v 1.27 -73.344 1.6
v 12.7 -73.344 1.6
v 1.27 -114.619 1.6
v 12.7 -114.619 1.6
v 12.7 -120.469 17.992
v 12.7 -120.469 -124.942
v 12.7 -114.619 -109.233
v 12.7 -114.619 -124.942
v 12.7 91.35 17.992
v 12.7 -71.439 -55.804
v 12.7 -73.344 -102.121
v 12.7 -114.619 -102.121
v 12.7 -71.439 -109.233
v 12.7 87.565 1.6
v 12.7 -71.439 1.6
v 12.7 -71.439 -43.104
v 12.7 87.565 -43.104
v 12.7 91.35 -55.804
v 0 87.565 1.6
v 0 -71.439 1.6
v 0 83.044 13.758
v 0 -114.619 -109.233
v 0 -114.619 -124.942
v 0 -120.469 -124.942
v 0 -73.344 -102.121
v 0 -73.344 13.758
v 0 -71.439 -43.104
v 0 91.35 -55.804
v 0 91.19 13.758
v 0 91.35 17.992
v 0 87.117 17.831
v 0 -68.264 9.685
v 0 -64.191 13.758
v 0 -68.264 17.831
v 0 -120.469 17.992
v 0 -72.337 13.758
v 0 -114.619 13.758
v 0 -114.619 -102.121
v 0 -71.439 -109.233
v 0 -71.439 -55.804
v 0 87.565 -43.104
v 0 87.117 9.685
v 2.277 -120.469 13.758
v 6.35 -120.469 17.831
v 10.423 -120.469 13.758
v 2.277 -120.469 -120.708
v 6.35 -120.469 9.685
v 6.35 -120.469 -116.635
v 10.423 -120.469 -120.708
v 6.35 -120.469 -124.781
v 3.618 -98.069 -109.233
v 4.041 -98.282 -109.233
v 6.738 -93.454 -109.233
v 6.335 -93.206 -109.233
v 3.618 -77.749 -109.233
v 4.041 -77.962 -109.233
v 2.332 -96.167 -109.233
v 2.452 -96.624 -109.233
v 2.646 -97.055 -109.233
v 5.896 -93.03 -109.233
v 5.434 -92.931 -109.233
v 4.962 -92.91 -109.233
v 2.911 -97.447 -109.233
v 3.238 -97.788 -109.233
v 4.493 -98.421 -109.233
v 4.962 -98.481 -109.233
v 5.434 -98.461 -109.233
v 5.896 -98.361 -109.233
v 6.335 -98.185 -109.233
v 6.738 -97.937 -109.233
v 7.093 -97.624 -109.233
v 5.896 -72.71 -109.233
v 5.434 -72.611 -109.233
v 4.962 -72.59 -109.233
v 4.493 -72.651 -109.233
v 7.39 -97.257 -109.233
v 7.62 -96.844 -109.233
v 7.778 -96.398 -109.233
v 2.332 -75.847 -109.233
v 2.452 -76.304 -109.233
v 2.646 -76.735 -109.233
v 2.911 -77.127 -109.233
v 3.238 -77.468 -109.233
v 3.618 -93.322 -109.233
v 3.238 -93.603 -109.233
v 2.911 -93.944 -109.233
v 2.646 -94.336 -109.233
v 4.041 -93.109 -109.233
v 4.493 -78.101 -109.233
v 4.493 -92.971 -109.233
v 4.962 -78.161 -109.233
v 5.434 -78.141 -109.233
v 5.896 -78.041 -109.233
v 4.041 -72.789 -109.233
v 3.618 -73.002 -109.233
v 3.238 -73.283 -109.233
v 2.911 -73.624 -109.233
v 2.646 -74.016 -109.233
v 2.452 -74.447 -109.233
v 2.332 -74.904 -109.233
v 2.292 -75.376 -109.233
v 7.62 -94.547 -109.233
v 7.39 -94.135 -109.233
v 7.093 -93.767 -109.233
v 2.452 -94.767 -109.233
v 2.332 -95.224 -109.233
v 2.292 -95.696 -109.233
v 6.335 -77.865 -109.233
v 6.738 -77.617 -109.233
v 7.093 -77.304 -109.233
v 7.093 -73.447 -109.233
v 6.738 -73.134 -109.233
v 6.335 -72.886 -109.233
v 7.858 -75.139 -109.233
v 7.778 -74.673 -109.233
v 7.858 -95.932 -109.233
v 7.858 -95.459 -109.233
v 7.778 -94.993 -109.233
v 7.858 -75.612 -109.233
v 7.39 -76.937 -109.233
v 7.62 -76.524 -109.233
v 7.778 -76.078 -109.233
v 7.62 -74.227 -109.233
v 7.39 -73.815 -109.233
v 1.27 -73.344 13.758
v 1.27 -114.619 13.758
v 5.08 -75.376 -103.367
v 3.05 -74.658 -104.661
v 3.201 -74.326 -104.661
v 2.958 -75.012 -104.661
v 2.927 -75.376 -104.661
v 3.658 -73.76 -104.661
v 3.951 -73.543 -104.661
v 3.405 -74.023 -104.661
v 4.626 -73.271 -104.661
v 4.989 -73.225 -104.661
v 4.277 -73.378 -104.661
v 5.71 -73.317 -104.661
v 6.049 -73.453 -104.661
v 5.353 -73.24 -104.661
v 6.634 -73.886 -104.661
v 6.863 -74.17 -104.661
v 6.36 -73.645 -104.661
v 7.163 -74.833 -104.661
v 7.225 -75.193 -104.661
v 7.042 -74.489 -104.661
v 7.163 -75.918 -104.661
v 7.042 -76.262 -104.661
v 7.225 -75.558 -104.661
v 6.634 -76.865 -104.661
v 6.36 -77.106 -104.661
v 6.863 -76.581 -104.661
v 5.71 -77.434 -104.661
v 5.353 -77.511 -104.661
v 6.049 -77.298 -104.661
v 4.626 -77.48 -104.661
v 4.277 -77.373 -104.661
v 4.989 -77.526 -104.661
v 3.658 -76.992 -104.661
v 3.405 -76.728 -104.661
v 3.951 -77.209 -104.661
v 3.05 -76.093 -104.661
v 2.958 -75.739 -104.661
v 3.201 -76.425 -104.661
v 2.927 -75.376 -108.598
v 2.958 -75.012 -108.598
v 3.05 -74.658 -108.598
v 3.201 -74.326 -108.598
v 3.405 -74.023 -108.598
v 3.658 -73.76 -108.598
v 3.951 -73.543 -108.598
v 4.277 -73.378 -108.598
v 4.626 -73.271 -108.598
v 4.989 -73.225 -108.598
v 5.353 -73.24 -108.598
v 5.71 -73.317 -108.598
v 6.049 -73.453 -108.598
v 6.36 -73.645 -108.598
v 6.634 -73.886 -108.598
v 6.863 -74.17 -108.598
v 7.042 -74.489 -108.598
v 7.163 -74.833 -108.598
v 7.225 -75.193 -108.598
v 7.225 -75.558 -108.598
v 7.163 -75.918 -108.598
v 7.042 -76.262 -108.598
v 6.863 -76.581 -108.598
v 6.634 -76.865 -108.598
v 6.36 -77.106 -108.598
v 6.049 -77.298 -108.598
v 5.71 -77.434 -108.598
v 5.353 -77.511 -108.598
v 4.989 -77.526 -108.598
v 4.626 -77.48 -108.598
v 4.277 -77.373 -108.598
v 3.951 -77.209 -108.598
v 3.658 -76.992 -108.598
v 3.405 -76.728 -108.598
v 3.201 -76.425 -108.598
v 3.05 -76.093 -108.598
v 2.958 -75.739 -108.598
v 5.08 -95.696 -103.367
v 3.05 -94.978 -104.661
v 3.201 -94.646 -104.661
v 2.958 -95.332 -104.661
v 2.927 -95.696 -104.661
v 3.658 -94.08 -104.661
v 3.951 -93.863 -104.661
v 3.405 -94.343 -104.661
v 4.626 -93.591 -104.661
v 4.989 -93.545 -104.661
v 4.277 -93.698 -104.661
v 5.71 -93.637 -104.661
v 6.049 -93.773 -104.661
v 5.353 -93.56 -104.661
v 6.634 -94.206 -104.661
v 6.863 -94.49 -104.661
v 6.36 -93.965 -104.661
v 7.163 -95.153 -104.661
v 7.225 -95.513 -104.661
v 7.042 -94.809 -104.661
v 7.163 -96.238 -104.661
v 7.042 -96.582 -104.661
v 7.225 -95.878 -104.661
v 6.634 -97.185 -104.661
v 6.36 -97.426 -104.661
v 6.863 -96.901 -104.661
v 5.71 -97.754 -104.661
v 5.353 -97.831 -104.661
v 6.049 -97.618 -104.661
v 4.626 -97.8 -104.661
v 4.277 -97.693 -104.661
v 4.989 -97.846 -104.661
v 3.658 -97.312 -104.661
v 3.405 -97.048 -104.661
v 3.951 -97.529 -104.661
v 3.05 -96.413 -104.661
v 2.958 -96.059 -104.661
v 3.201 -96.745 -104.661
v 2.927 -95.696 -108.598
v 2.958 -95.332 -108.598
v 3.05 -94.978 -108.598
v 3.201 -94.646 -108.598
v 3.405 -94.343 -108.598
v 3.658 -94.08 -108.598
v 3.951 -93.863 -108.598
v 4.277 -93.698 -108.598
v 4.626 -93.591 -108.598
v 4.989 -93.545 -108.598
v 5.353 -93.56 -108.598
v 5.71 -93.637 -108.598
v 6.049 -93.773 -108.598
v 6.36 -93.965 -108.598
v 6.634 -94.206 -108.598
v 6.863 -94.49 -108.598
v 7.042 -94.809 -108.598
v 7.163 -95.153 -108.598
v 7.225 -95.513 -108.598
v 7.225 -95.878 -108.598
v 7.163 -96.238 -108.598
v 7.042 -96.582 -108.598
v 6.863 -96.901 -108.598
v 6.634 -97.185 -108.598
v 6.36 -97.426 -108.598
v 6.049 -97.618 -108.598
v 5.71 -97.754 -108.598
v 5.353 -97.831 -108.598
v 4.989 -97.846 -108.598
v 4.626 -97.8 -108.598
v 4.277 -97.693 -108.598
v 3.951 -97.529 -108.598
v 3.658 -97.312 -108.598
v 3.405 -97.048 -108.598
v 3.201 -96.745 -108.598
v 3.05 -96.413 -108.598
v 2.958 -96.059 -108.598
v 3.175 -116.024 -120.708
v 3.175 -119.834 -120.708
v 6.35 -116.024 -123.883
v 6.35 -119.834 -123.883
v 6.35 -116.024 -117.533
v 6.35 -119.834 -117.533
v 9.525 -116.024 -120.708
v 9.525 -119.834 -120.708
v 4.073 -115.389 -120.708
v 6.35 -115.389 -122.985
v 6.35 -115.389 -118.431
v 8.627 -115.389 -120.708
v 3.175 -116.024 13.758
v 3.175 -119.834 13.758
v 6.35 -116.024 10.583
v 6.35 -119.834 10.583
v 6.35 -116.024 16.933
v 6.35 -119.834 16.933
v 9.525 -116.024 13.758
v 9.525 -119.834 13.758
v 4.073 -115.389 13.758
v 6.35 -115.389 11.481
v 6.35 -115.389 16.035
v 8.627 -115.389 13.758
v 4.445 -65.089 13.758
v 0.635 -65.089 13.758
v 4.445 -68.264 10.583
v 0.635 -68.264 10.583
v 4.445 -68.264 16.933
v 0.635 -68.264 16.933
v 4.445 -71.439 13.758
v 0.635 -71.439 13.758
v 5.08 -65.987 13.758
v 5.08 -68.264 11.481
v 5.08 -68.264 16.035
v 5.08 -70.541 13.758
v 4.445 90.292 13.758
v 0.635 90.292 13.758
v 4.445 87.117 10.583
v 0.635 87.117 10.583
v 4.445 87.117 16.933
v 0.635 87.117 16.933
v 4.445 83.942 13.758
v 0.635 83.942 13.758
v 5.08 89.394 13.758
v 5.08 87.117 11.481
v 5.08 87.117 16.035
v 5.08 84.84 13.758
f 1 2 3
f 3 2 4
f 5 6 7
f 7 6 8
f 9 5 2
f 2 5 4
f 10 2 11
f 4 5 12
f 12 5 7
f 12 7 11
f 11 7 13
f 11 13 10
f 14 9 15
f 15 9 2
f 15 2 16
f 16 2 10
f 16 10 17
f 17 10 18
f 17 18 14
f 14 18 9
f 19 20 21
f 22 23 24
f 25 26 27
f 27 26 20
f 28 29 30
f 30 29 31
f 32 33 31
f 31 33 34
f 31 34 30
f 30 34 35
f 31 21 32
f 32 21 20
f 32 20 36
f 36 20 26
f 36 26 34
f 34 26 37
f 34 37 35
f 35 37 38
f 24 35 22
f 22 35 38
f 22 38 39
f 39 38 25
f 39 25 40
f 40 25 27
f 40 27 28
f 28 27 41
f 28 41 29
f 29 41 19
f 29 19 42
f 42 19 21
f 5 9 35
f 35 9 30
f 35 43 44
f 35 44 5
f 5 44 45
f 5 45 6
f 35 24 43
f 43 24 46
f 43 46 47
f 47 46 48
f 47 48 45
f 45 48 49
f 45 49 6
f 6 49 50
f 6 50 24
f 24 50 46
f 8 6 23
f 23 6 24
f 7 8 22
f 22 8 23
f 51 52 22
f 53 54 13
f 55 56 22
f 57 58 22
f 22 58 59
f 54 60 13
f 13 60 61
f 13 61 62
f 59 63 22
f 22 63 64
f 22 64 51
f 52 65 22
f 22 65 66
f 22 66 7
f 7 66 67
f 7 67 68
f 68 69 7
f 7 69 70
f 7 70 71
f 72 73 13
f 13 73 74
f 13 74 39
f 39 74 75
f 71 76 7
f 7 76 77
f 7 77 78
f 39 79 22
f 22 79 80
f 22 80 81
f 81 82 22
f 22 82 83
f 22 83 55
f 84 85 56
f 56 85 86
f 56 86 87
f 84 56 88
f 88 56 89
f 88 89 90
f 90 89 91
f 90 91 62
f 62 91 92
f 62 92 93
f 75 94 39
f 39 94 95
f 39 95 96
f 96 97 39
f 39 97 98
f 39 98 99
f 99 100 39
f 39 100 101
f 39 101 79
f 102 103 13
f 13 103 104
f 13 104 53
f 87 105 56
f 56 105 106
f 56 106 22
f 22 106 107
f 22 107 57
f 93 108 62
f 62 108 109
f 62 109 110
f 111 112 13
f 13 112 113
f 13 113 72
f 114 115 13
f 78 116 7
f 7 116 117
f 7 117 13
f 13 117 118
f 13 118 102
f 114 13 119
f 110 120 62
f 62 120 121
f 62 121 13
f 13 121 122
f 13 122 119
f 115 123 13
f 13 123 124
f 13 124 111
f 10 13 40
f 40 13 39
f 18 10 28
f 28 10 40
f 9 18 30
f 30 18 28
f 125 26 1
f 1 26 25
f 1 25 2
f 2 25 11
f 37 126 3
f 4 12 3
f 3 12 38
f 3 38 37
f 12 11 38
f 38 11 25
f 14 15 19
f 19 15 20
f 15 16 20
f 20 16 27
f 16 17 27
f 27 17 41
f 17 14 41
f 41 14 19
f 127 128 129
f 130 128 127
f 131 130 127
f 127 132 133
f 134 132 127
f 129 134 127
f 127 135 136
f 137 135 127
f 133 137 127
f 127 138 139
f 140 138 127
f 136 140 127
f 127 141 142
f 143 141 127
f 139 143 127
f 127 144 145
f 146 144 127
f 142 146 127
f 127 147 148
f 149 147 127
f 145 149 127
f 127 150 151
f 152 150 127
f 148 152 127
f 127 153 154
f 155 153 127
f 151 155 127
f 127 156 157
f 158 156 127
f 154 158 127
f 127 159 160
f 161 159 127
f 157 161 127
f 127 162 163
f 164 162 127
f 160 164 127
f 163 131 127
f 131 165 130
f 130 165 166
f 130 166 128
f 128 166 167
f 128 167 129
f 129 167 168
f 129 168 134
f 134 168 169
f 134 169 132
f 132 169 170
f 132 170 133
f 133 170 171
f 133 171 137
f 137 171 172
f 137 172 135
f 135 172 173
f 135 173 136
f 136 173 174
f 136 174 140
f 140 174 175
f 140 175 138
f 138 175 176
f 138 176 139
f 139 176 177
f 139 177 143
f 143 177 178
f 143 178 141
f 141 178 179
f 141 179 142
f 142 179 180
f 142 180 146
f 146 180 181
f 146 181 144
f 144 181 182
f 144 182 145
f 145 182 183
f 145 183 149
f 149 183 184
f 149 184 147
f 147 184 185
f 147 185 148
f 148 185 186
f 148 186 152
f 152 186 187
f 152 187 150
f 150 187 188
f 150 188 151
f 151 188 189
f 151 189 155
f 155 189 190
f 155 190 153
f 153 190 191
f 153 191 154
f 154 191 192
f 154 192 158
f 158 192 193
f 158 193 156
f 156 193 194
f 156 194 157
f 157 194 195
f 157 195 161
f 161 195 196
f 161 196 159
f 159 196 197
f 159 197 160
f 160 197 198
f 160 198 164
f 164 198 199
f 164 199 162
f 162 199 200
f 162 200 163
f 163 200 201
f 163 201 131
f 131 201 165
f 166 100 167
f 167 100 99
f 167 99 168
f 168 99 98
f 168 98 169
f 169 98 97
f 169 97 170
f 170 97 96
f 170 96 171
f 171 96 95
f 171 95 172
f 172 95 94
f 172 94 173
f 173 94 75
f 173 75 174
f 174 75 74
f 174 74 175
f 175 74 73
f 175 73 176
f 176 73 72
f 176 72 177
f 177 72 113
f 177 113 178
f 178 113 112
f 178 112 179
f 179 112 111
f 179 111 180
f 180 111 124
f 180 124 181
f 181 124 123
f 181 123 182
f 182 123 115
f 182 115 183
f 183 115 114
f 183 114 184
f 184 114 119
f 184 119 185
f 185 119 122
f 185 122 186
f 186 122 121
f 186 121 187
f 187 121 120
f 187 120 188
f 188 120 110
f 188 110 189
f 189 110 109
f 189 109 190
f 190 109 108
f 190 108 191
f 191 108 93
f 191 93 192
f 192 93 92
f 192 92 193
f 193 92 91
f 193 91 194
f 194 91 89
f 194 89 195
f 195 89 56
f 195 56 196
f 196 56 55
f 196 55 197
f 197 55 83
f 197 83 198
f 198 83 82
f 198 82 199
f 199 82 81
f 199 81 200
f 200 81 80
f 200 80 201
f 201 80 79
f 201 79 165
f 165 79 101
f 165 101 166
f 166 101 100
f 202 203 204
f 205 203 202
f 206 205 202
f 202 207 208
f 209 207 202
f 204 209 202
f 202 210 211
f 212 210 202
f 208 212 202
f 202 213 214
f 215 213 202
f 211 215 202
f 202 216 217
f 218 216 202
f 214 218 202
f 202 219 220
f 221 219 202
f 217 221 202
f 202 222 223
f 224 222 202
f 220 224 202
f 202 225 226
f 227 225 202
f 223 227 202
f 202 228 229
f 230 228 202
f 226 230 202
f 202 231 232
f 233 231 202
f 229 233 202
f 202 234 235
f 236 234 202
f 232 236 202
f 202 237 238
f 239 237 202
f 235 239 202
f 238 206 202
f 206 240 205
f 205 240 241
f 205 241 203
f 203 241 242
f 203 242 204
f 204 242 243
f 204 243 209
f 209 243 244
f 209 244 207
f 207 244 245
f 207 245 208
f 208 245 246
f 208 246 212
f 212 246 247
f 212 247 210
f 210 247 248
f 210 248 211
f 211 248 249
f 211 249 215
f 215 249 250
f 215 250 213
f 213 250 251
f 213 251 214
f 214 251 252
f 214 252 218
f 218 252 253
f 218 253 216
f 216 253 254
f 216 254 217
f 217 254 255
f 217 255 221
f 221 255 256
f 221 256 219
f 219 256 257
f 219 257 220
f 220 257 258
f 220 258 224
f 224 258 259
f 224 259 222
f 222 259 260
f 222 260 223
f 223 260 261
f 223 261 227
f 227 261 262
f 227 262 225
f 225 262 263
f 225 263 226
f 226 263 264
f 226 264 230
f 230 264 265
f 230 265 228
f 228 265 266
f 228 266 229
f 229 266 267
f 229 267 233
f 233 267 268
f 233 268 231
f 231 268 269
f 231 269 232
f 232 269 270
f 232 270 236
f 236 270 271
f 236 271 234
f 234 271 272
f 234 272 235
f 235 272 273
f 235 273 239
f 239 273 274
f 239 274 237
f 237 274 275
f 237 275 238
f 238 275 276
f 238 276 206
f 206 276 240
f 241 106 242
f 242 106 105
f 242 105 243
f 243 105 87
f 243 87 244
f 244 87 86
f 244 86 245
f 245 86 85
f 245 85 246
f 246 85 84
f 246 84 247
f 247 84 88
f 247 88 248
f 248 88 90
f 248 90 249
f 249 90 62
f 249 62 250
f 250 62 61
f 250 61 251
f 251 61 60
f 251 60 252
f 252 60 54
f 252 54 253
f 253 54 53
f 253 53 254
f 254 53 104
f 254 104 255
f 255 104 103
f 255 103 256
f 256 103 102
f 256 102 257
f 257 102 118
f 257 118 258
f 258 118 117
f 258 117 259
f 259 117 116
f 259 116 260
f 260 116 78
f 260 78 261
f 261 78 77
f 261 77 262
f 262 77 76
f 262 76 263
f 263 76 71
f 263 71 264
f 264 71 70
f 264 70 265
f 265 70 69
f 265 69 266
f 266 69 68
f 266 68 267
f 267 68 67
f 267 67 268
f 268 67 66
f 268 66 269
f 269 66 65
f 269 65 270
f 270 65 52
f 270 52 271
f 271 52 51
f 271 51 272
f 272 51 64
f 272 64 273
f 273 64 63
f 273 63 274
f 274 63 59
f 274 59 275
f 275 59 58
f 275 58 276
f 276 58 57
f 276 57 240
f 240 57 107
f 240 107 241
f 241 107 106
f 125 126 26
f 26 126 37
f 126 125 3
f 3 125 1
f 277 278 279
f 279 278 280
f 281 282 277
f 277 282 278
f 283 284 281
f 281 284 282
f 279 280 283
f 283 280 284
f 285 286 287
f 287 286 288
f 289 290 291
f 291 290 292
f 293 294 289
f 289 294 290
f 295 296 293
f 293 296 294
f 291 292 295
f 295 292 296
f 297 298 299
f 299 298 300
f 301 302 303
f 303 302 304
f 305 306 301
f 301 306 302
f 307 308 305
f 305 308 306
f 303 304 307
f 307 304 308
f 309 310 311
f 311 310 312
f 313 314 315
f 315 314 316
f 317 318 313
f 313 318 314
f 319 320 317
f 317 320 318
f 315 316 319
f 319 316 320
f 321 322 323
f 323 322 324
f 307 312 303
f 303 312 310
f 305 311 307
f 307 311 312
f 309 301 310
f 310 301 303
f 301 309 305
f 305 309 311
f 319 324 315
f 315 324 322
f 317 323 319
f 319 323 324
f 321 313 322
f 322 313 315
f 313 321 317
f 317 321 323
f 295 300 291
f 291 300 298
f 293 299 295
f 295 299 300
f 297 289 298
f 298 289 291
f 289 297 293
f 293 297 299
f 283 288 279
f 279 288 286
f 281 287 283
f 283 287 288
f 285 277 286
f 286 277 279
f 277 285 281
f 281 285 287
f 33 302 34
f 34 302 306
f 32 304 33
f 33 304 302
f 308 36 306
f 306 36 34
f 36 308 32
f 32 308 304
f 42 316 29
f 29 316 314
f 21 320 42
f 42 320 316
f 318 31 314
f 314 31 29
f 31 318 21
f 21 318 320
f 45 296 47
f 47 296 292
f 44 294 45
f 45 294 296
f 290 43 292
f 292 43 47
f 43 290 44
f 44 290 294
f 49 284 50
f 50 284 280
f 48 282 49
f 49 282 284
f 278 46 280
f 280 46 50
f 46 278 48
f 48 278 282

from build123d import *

# Parameters (mm, degrees)
SKETCH4_W                              = 44.704
SKETCH4_H                              = 159.004
SKETCH4_W_2                            = 103.7209
SKETCH4_H_2                            = 41.275
BOSS_EXTRUDE1_DEPTH                    = 12.7
F_18_0_1695_DIAMETER_HOLE1_D           = 4.3053
F_18_0_1695_DIAMETER_HOLE1_DEPTH       = 4.572
F_18_0_1695_DIAMETER_HOLE1_CSINK_D     = 5.5753
F_18_0_1695_DIAMETER_HOLE1_CSINK_ANGLE = 90
F_18_0_1695_DIAMETER_HOLE1_TIP         = 1.293442612
SKETCH11_W                             = 12.158133317
SKETCH11_H                             = 41.275
CUT_EXTRUDE3_DEPTH                     = 1.27
CUT_EXTRUDE1_DEPTH                     = 5.08
CUT_EXTRUDE2_DEPTH                     = 5.08
CHAMFER1_SIZE                          = 0.635


with BuildPart() as part:
    # Sketch4 → Boss-Extrude1 (new body)
    with BuildSketch(Plane(origin=(0, 0, 0), x_dir=(0, 0, -1), z_dir=(1, 0, 0))):
        Polygon((55.8038, 91.35), (-17.991666651, 91.35), (-17.991666651, -120.4686), (124.941666683, -120.4686), (124.941666683, -114.6186), (109.2327, -114.6186), (109.2327, -71.4386), (55.8038, -71.4386), align=None)
        with Locations((20.7518, 8.0634)):
            Rectangle(SKETCH4_W, SKETCH4_H, mode=Mode.SUBTRACT)
        with Locations((50.26025, -93.9811)):
            Rectangle(SKETCH4_W_2, SKETCH4_H_2, mode=Mode.SUBTRACT)
    extrude(amount=BOSS_EXTRUDE1_DEPTH)

    # #18 (0.1695) Diameter Hole1
    with Locations(Plane(origin=(0, 0, -109.2327), x_dir=(-1, 0, 0), z_dir=(0, 0, -1))):
        with Locations((-5.08, -95.6956), (-5.08, -75.3756)):
            CounterSinkHole(F_18_0_1695_DIAMETER_HOLE1_D / 2, F_18_0_1695_DIAMETER_HOLE1_CSINK_D / 2, depth=F_18_0_1695_DIAMETER_HOLE1_DEPTH, counter_sink_angle=F_18_0_1695_DIAMETER_HOLE1_CSINK_ANGLE)
            with Locations((0, 0, -(F_18_0_1695_DIAMETER_HOLE1_DEPTH + F_18_0_1695_DIAMETER_HOLE1_TIP / 2))):  # 118° drill point
                Cone(0, F_18_0_1695_DIAMETER_HOLE1_D / 2, F_18_0_1695_DIAMETER_HOLE1_TIP, mode=Mode.SUBTRACT)

    # Sketch11 → Cut-Extrude3 (cut)
    with BuildSketch(Plane.ZY):
        with Locations((7.679266659, -93.9811)):
            Rectangle(SKETCH11_W, SKETCH11_H)
    extrude(amount=-CUT_EXTRUDE3_DEPTH, mode=Mode.SUBTRACT)

    # Sketch9 → Cut-Extrude1 (cut)
    with BuildSketch(Plane.XZ.offset(120.4686)):
        Polygon((3.175, 13.758333317), (6.35, 16.933333317), (9.525, 13.758333317), (6.35, 10.583333317), align=None)
        Polygon((3.175, -120.708333349), (6.35, -117.533333349), (9.525, -120.708333349), (6.35, -123.883333349), align=None)
    extrude(amount=-CUT_EXTRUDE1_DEPTH, mode=Mode.SUBTRACT)

    # Sketch10 → Cut-Extrude2 (cut)
    with BuildSketch(Plane.ZY):
        Polygon((13.758333317, 90.291666667), (16.933333317, 87.116666667), (13.758333317, 83.941666667), (10.583333317, 87.116666667), align=None)
        Polygon((13.758333317, -65.0886), (16.933333317, -68.2636), (13.758333317, -71.4386), (10.583333317, -68.2636), align=None)
    extrude(amount=-CUT_EXTRUDE2_DEPTH, mode=Mode.SUBTRACT)

    # Chamfer1
    chamfer1_edges = [part.edges().sort_by_distance(p)[0] for p in [
        (5.08, 88.704166667, 12.170833317),
        (5.08, 88.704166667, 15.345833317),
        (5.08, 85.529166667, 15.345833317),
        (5.08, 85.529166667, 12.170833317),
        (0, 88.704166667, 12.170833317),
        (0, 85.529166667, 12.170833317),
        (0, 85.529166667, 15.345833317),
        (0, 88.704166667, 15.345833317),
        (5.08, -66.6761, 12.170833317),
        (5.08, -66.6761, 15.345833317),
        (5.08, -69.8511, 15.345833317),
        (5.08, -69.8511, 12.170833317),
        (0, -66.6761, 12.170833317),
        (0, -69.8511, 12.170833317),
        (0, -69.8511, 15.345833317),
        (0, -66.6761, 15.345833317),
        (4.7625, -115.3886, 12.170833317),
        (4.7625, -115.3886, 15.345833317),
        (7.9375, -115.3886, 15.345833317),
        (7.9375, -115.3886, 12.170833317),
        (4.7625, -120.4686, 12.170833317),
        (7.9375, -120.4686, 12.170833317),
        (7.9375, -120.4686, 15.345833317),
        (4.7625, -120.4686, 15.345833317),
        (4.7625, -115.3886, -122.295833349),
        (4.7625, -115.3886, -119.120833349),
        (7.9375, -115.3886, -119.120833349),
        (7.9375, -115.3886, -122.295833349),
        (4.7625, -120.4686, -122.295833349),
        (7.9375, -120.4686, -122.295833349),
        (7.9375, -120.4686, -119.120833349),
        (4.7625, -120.4686, -119.120833349),
    ]]
    chamfer(chamfer1_edges, length=CHAMFER1_SIZE)


solid = part.part
